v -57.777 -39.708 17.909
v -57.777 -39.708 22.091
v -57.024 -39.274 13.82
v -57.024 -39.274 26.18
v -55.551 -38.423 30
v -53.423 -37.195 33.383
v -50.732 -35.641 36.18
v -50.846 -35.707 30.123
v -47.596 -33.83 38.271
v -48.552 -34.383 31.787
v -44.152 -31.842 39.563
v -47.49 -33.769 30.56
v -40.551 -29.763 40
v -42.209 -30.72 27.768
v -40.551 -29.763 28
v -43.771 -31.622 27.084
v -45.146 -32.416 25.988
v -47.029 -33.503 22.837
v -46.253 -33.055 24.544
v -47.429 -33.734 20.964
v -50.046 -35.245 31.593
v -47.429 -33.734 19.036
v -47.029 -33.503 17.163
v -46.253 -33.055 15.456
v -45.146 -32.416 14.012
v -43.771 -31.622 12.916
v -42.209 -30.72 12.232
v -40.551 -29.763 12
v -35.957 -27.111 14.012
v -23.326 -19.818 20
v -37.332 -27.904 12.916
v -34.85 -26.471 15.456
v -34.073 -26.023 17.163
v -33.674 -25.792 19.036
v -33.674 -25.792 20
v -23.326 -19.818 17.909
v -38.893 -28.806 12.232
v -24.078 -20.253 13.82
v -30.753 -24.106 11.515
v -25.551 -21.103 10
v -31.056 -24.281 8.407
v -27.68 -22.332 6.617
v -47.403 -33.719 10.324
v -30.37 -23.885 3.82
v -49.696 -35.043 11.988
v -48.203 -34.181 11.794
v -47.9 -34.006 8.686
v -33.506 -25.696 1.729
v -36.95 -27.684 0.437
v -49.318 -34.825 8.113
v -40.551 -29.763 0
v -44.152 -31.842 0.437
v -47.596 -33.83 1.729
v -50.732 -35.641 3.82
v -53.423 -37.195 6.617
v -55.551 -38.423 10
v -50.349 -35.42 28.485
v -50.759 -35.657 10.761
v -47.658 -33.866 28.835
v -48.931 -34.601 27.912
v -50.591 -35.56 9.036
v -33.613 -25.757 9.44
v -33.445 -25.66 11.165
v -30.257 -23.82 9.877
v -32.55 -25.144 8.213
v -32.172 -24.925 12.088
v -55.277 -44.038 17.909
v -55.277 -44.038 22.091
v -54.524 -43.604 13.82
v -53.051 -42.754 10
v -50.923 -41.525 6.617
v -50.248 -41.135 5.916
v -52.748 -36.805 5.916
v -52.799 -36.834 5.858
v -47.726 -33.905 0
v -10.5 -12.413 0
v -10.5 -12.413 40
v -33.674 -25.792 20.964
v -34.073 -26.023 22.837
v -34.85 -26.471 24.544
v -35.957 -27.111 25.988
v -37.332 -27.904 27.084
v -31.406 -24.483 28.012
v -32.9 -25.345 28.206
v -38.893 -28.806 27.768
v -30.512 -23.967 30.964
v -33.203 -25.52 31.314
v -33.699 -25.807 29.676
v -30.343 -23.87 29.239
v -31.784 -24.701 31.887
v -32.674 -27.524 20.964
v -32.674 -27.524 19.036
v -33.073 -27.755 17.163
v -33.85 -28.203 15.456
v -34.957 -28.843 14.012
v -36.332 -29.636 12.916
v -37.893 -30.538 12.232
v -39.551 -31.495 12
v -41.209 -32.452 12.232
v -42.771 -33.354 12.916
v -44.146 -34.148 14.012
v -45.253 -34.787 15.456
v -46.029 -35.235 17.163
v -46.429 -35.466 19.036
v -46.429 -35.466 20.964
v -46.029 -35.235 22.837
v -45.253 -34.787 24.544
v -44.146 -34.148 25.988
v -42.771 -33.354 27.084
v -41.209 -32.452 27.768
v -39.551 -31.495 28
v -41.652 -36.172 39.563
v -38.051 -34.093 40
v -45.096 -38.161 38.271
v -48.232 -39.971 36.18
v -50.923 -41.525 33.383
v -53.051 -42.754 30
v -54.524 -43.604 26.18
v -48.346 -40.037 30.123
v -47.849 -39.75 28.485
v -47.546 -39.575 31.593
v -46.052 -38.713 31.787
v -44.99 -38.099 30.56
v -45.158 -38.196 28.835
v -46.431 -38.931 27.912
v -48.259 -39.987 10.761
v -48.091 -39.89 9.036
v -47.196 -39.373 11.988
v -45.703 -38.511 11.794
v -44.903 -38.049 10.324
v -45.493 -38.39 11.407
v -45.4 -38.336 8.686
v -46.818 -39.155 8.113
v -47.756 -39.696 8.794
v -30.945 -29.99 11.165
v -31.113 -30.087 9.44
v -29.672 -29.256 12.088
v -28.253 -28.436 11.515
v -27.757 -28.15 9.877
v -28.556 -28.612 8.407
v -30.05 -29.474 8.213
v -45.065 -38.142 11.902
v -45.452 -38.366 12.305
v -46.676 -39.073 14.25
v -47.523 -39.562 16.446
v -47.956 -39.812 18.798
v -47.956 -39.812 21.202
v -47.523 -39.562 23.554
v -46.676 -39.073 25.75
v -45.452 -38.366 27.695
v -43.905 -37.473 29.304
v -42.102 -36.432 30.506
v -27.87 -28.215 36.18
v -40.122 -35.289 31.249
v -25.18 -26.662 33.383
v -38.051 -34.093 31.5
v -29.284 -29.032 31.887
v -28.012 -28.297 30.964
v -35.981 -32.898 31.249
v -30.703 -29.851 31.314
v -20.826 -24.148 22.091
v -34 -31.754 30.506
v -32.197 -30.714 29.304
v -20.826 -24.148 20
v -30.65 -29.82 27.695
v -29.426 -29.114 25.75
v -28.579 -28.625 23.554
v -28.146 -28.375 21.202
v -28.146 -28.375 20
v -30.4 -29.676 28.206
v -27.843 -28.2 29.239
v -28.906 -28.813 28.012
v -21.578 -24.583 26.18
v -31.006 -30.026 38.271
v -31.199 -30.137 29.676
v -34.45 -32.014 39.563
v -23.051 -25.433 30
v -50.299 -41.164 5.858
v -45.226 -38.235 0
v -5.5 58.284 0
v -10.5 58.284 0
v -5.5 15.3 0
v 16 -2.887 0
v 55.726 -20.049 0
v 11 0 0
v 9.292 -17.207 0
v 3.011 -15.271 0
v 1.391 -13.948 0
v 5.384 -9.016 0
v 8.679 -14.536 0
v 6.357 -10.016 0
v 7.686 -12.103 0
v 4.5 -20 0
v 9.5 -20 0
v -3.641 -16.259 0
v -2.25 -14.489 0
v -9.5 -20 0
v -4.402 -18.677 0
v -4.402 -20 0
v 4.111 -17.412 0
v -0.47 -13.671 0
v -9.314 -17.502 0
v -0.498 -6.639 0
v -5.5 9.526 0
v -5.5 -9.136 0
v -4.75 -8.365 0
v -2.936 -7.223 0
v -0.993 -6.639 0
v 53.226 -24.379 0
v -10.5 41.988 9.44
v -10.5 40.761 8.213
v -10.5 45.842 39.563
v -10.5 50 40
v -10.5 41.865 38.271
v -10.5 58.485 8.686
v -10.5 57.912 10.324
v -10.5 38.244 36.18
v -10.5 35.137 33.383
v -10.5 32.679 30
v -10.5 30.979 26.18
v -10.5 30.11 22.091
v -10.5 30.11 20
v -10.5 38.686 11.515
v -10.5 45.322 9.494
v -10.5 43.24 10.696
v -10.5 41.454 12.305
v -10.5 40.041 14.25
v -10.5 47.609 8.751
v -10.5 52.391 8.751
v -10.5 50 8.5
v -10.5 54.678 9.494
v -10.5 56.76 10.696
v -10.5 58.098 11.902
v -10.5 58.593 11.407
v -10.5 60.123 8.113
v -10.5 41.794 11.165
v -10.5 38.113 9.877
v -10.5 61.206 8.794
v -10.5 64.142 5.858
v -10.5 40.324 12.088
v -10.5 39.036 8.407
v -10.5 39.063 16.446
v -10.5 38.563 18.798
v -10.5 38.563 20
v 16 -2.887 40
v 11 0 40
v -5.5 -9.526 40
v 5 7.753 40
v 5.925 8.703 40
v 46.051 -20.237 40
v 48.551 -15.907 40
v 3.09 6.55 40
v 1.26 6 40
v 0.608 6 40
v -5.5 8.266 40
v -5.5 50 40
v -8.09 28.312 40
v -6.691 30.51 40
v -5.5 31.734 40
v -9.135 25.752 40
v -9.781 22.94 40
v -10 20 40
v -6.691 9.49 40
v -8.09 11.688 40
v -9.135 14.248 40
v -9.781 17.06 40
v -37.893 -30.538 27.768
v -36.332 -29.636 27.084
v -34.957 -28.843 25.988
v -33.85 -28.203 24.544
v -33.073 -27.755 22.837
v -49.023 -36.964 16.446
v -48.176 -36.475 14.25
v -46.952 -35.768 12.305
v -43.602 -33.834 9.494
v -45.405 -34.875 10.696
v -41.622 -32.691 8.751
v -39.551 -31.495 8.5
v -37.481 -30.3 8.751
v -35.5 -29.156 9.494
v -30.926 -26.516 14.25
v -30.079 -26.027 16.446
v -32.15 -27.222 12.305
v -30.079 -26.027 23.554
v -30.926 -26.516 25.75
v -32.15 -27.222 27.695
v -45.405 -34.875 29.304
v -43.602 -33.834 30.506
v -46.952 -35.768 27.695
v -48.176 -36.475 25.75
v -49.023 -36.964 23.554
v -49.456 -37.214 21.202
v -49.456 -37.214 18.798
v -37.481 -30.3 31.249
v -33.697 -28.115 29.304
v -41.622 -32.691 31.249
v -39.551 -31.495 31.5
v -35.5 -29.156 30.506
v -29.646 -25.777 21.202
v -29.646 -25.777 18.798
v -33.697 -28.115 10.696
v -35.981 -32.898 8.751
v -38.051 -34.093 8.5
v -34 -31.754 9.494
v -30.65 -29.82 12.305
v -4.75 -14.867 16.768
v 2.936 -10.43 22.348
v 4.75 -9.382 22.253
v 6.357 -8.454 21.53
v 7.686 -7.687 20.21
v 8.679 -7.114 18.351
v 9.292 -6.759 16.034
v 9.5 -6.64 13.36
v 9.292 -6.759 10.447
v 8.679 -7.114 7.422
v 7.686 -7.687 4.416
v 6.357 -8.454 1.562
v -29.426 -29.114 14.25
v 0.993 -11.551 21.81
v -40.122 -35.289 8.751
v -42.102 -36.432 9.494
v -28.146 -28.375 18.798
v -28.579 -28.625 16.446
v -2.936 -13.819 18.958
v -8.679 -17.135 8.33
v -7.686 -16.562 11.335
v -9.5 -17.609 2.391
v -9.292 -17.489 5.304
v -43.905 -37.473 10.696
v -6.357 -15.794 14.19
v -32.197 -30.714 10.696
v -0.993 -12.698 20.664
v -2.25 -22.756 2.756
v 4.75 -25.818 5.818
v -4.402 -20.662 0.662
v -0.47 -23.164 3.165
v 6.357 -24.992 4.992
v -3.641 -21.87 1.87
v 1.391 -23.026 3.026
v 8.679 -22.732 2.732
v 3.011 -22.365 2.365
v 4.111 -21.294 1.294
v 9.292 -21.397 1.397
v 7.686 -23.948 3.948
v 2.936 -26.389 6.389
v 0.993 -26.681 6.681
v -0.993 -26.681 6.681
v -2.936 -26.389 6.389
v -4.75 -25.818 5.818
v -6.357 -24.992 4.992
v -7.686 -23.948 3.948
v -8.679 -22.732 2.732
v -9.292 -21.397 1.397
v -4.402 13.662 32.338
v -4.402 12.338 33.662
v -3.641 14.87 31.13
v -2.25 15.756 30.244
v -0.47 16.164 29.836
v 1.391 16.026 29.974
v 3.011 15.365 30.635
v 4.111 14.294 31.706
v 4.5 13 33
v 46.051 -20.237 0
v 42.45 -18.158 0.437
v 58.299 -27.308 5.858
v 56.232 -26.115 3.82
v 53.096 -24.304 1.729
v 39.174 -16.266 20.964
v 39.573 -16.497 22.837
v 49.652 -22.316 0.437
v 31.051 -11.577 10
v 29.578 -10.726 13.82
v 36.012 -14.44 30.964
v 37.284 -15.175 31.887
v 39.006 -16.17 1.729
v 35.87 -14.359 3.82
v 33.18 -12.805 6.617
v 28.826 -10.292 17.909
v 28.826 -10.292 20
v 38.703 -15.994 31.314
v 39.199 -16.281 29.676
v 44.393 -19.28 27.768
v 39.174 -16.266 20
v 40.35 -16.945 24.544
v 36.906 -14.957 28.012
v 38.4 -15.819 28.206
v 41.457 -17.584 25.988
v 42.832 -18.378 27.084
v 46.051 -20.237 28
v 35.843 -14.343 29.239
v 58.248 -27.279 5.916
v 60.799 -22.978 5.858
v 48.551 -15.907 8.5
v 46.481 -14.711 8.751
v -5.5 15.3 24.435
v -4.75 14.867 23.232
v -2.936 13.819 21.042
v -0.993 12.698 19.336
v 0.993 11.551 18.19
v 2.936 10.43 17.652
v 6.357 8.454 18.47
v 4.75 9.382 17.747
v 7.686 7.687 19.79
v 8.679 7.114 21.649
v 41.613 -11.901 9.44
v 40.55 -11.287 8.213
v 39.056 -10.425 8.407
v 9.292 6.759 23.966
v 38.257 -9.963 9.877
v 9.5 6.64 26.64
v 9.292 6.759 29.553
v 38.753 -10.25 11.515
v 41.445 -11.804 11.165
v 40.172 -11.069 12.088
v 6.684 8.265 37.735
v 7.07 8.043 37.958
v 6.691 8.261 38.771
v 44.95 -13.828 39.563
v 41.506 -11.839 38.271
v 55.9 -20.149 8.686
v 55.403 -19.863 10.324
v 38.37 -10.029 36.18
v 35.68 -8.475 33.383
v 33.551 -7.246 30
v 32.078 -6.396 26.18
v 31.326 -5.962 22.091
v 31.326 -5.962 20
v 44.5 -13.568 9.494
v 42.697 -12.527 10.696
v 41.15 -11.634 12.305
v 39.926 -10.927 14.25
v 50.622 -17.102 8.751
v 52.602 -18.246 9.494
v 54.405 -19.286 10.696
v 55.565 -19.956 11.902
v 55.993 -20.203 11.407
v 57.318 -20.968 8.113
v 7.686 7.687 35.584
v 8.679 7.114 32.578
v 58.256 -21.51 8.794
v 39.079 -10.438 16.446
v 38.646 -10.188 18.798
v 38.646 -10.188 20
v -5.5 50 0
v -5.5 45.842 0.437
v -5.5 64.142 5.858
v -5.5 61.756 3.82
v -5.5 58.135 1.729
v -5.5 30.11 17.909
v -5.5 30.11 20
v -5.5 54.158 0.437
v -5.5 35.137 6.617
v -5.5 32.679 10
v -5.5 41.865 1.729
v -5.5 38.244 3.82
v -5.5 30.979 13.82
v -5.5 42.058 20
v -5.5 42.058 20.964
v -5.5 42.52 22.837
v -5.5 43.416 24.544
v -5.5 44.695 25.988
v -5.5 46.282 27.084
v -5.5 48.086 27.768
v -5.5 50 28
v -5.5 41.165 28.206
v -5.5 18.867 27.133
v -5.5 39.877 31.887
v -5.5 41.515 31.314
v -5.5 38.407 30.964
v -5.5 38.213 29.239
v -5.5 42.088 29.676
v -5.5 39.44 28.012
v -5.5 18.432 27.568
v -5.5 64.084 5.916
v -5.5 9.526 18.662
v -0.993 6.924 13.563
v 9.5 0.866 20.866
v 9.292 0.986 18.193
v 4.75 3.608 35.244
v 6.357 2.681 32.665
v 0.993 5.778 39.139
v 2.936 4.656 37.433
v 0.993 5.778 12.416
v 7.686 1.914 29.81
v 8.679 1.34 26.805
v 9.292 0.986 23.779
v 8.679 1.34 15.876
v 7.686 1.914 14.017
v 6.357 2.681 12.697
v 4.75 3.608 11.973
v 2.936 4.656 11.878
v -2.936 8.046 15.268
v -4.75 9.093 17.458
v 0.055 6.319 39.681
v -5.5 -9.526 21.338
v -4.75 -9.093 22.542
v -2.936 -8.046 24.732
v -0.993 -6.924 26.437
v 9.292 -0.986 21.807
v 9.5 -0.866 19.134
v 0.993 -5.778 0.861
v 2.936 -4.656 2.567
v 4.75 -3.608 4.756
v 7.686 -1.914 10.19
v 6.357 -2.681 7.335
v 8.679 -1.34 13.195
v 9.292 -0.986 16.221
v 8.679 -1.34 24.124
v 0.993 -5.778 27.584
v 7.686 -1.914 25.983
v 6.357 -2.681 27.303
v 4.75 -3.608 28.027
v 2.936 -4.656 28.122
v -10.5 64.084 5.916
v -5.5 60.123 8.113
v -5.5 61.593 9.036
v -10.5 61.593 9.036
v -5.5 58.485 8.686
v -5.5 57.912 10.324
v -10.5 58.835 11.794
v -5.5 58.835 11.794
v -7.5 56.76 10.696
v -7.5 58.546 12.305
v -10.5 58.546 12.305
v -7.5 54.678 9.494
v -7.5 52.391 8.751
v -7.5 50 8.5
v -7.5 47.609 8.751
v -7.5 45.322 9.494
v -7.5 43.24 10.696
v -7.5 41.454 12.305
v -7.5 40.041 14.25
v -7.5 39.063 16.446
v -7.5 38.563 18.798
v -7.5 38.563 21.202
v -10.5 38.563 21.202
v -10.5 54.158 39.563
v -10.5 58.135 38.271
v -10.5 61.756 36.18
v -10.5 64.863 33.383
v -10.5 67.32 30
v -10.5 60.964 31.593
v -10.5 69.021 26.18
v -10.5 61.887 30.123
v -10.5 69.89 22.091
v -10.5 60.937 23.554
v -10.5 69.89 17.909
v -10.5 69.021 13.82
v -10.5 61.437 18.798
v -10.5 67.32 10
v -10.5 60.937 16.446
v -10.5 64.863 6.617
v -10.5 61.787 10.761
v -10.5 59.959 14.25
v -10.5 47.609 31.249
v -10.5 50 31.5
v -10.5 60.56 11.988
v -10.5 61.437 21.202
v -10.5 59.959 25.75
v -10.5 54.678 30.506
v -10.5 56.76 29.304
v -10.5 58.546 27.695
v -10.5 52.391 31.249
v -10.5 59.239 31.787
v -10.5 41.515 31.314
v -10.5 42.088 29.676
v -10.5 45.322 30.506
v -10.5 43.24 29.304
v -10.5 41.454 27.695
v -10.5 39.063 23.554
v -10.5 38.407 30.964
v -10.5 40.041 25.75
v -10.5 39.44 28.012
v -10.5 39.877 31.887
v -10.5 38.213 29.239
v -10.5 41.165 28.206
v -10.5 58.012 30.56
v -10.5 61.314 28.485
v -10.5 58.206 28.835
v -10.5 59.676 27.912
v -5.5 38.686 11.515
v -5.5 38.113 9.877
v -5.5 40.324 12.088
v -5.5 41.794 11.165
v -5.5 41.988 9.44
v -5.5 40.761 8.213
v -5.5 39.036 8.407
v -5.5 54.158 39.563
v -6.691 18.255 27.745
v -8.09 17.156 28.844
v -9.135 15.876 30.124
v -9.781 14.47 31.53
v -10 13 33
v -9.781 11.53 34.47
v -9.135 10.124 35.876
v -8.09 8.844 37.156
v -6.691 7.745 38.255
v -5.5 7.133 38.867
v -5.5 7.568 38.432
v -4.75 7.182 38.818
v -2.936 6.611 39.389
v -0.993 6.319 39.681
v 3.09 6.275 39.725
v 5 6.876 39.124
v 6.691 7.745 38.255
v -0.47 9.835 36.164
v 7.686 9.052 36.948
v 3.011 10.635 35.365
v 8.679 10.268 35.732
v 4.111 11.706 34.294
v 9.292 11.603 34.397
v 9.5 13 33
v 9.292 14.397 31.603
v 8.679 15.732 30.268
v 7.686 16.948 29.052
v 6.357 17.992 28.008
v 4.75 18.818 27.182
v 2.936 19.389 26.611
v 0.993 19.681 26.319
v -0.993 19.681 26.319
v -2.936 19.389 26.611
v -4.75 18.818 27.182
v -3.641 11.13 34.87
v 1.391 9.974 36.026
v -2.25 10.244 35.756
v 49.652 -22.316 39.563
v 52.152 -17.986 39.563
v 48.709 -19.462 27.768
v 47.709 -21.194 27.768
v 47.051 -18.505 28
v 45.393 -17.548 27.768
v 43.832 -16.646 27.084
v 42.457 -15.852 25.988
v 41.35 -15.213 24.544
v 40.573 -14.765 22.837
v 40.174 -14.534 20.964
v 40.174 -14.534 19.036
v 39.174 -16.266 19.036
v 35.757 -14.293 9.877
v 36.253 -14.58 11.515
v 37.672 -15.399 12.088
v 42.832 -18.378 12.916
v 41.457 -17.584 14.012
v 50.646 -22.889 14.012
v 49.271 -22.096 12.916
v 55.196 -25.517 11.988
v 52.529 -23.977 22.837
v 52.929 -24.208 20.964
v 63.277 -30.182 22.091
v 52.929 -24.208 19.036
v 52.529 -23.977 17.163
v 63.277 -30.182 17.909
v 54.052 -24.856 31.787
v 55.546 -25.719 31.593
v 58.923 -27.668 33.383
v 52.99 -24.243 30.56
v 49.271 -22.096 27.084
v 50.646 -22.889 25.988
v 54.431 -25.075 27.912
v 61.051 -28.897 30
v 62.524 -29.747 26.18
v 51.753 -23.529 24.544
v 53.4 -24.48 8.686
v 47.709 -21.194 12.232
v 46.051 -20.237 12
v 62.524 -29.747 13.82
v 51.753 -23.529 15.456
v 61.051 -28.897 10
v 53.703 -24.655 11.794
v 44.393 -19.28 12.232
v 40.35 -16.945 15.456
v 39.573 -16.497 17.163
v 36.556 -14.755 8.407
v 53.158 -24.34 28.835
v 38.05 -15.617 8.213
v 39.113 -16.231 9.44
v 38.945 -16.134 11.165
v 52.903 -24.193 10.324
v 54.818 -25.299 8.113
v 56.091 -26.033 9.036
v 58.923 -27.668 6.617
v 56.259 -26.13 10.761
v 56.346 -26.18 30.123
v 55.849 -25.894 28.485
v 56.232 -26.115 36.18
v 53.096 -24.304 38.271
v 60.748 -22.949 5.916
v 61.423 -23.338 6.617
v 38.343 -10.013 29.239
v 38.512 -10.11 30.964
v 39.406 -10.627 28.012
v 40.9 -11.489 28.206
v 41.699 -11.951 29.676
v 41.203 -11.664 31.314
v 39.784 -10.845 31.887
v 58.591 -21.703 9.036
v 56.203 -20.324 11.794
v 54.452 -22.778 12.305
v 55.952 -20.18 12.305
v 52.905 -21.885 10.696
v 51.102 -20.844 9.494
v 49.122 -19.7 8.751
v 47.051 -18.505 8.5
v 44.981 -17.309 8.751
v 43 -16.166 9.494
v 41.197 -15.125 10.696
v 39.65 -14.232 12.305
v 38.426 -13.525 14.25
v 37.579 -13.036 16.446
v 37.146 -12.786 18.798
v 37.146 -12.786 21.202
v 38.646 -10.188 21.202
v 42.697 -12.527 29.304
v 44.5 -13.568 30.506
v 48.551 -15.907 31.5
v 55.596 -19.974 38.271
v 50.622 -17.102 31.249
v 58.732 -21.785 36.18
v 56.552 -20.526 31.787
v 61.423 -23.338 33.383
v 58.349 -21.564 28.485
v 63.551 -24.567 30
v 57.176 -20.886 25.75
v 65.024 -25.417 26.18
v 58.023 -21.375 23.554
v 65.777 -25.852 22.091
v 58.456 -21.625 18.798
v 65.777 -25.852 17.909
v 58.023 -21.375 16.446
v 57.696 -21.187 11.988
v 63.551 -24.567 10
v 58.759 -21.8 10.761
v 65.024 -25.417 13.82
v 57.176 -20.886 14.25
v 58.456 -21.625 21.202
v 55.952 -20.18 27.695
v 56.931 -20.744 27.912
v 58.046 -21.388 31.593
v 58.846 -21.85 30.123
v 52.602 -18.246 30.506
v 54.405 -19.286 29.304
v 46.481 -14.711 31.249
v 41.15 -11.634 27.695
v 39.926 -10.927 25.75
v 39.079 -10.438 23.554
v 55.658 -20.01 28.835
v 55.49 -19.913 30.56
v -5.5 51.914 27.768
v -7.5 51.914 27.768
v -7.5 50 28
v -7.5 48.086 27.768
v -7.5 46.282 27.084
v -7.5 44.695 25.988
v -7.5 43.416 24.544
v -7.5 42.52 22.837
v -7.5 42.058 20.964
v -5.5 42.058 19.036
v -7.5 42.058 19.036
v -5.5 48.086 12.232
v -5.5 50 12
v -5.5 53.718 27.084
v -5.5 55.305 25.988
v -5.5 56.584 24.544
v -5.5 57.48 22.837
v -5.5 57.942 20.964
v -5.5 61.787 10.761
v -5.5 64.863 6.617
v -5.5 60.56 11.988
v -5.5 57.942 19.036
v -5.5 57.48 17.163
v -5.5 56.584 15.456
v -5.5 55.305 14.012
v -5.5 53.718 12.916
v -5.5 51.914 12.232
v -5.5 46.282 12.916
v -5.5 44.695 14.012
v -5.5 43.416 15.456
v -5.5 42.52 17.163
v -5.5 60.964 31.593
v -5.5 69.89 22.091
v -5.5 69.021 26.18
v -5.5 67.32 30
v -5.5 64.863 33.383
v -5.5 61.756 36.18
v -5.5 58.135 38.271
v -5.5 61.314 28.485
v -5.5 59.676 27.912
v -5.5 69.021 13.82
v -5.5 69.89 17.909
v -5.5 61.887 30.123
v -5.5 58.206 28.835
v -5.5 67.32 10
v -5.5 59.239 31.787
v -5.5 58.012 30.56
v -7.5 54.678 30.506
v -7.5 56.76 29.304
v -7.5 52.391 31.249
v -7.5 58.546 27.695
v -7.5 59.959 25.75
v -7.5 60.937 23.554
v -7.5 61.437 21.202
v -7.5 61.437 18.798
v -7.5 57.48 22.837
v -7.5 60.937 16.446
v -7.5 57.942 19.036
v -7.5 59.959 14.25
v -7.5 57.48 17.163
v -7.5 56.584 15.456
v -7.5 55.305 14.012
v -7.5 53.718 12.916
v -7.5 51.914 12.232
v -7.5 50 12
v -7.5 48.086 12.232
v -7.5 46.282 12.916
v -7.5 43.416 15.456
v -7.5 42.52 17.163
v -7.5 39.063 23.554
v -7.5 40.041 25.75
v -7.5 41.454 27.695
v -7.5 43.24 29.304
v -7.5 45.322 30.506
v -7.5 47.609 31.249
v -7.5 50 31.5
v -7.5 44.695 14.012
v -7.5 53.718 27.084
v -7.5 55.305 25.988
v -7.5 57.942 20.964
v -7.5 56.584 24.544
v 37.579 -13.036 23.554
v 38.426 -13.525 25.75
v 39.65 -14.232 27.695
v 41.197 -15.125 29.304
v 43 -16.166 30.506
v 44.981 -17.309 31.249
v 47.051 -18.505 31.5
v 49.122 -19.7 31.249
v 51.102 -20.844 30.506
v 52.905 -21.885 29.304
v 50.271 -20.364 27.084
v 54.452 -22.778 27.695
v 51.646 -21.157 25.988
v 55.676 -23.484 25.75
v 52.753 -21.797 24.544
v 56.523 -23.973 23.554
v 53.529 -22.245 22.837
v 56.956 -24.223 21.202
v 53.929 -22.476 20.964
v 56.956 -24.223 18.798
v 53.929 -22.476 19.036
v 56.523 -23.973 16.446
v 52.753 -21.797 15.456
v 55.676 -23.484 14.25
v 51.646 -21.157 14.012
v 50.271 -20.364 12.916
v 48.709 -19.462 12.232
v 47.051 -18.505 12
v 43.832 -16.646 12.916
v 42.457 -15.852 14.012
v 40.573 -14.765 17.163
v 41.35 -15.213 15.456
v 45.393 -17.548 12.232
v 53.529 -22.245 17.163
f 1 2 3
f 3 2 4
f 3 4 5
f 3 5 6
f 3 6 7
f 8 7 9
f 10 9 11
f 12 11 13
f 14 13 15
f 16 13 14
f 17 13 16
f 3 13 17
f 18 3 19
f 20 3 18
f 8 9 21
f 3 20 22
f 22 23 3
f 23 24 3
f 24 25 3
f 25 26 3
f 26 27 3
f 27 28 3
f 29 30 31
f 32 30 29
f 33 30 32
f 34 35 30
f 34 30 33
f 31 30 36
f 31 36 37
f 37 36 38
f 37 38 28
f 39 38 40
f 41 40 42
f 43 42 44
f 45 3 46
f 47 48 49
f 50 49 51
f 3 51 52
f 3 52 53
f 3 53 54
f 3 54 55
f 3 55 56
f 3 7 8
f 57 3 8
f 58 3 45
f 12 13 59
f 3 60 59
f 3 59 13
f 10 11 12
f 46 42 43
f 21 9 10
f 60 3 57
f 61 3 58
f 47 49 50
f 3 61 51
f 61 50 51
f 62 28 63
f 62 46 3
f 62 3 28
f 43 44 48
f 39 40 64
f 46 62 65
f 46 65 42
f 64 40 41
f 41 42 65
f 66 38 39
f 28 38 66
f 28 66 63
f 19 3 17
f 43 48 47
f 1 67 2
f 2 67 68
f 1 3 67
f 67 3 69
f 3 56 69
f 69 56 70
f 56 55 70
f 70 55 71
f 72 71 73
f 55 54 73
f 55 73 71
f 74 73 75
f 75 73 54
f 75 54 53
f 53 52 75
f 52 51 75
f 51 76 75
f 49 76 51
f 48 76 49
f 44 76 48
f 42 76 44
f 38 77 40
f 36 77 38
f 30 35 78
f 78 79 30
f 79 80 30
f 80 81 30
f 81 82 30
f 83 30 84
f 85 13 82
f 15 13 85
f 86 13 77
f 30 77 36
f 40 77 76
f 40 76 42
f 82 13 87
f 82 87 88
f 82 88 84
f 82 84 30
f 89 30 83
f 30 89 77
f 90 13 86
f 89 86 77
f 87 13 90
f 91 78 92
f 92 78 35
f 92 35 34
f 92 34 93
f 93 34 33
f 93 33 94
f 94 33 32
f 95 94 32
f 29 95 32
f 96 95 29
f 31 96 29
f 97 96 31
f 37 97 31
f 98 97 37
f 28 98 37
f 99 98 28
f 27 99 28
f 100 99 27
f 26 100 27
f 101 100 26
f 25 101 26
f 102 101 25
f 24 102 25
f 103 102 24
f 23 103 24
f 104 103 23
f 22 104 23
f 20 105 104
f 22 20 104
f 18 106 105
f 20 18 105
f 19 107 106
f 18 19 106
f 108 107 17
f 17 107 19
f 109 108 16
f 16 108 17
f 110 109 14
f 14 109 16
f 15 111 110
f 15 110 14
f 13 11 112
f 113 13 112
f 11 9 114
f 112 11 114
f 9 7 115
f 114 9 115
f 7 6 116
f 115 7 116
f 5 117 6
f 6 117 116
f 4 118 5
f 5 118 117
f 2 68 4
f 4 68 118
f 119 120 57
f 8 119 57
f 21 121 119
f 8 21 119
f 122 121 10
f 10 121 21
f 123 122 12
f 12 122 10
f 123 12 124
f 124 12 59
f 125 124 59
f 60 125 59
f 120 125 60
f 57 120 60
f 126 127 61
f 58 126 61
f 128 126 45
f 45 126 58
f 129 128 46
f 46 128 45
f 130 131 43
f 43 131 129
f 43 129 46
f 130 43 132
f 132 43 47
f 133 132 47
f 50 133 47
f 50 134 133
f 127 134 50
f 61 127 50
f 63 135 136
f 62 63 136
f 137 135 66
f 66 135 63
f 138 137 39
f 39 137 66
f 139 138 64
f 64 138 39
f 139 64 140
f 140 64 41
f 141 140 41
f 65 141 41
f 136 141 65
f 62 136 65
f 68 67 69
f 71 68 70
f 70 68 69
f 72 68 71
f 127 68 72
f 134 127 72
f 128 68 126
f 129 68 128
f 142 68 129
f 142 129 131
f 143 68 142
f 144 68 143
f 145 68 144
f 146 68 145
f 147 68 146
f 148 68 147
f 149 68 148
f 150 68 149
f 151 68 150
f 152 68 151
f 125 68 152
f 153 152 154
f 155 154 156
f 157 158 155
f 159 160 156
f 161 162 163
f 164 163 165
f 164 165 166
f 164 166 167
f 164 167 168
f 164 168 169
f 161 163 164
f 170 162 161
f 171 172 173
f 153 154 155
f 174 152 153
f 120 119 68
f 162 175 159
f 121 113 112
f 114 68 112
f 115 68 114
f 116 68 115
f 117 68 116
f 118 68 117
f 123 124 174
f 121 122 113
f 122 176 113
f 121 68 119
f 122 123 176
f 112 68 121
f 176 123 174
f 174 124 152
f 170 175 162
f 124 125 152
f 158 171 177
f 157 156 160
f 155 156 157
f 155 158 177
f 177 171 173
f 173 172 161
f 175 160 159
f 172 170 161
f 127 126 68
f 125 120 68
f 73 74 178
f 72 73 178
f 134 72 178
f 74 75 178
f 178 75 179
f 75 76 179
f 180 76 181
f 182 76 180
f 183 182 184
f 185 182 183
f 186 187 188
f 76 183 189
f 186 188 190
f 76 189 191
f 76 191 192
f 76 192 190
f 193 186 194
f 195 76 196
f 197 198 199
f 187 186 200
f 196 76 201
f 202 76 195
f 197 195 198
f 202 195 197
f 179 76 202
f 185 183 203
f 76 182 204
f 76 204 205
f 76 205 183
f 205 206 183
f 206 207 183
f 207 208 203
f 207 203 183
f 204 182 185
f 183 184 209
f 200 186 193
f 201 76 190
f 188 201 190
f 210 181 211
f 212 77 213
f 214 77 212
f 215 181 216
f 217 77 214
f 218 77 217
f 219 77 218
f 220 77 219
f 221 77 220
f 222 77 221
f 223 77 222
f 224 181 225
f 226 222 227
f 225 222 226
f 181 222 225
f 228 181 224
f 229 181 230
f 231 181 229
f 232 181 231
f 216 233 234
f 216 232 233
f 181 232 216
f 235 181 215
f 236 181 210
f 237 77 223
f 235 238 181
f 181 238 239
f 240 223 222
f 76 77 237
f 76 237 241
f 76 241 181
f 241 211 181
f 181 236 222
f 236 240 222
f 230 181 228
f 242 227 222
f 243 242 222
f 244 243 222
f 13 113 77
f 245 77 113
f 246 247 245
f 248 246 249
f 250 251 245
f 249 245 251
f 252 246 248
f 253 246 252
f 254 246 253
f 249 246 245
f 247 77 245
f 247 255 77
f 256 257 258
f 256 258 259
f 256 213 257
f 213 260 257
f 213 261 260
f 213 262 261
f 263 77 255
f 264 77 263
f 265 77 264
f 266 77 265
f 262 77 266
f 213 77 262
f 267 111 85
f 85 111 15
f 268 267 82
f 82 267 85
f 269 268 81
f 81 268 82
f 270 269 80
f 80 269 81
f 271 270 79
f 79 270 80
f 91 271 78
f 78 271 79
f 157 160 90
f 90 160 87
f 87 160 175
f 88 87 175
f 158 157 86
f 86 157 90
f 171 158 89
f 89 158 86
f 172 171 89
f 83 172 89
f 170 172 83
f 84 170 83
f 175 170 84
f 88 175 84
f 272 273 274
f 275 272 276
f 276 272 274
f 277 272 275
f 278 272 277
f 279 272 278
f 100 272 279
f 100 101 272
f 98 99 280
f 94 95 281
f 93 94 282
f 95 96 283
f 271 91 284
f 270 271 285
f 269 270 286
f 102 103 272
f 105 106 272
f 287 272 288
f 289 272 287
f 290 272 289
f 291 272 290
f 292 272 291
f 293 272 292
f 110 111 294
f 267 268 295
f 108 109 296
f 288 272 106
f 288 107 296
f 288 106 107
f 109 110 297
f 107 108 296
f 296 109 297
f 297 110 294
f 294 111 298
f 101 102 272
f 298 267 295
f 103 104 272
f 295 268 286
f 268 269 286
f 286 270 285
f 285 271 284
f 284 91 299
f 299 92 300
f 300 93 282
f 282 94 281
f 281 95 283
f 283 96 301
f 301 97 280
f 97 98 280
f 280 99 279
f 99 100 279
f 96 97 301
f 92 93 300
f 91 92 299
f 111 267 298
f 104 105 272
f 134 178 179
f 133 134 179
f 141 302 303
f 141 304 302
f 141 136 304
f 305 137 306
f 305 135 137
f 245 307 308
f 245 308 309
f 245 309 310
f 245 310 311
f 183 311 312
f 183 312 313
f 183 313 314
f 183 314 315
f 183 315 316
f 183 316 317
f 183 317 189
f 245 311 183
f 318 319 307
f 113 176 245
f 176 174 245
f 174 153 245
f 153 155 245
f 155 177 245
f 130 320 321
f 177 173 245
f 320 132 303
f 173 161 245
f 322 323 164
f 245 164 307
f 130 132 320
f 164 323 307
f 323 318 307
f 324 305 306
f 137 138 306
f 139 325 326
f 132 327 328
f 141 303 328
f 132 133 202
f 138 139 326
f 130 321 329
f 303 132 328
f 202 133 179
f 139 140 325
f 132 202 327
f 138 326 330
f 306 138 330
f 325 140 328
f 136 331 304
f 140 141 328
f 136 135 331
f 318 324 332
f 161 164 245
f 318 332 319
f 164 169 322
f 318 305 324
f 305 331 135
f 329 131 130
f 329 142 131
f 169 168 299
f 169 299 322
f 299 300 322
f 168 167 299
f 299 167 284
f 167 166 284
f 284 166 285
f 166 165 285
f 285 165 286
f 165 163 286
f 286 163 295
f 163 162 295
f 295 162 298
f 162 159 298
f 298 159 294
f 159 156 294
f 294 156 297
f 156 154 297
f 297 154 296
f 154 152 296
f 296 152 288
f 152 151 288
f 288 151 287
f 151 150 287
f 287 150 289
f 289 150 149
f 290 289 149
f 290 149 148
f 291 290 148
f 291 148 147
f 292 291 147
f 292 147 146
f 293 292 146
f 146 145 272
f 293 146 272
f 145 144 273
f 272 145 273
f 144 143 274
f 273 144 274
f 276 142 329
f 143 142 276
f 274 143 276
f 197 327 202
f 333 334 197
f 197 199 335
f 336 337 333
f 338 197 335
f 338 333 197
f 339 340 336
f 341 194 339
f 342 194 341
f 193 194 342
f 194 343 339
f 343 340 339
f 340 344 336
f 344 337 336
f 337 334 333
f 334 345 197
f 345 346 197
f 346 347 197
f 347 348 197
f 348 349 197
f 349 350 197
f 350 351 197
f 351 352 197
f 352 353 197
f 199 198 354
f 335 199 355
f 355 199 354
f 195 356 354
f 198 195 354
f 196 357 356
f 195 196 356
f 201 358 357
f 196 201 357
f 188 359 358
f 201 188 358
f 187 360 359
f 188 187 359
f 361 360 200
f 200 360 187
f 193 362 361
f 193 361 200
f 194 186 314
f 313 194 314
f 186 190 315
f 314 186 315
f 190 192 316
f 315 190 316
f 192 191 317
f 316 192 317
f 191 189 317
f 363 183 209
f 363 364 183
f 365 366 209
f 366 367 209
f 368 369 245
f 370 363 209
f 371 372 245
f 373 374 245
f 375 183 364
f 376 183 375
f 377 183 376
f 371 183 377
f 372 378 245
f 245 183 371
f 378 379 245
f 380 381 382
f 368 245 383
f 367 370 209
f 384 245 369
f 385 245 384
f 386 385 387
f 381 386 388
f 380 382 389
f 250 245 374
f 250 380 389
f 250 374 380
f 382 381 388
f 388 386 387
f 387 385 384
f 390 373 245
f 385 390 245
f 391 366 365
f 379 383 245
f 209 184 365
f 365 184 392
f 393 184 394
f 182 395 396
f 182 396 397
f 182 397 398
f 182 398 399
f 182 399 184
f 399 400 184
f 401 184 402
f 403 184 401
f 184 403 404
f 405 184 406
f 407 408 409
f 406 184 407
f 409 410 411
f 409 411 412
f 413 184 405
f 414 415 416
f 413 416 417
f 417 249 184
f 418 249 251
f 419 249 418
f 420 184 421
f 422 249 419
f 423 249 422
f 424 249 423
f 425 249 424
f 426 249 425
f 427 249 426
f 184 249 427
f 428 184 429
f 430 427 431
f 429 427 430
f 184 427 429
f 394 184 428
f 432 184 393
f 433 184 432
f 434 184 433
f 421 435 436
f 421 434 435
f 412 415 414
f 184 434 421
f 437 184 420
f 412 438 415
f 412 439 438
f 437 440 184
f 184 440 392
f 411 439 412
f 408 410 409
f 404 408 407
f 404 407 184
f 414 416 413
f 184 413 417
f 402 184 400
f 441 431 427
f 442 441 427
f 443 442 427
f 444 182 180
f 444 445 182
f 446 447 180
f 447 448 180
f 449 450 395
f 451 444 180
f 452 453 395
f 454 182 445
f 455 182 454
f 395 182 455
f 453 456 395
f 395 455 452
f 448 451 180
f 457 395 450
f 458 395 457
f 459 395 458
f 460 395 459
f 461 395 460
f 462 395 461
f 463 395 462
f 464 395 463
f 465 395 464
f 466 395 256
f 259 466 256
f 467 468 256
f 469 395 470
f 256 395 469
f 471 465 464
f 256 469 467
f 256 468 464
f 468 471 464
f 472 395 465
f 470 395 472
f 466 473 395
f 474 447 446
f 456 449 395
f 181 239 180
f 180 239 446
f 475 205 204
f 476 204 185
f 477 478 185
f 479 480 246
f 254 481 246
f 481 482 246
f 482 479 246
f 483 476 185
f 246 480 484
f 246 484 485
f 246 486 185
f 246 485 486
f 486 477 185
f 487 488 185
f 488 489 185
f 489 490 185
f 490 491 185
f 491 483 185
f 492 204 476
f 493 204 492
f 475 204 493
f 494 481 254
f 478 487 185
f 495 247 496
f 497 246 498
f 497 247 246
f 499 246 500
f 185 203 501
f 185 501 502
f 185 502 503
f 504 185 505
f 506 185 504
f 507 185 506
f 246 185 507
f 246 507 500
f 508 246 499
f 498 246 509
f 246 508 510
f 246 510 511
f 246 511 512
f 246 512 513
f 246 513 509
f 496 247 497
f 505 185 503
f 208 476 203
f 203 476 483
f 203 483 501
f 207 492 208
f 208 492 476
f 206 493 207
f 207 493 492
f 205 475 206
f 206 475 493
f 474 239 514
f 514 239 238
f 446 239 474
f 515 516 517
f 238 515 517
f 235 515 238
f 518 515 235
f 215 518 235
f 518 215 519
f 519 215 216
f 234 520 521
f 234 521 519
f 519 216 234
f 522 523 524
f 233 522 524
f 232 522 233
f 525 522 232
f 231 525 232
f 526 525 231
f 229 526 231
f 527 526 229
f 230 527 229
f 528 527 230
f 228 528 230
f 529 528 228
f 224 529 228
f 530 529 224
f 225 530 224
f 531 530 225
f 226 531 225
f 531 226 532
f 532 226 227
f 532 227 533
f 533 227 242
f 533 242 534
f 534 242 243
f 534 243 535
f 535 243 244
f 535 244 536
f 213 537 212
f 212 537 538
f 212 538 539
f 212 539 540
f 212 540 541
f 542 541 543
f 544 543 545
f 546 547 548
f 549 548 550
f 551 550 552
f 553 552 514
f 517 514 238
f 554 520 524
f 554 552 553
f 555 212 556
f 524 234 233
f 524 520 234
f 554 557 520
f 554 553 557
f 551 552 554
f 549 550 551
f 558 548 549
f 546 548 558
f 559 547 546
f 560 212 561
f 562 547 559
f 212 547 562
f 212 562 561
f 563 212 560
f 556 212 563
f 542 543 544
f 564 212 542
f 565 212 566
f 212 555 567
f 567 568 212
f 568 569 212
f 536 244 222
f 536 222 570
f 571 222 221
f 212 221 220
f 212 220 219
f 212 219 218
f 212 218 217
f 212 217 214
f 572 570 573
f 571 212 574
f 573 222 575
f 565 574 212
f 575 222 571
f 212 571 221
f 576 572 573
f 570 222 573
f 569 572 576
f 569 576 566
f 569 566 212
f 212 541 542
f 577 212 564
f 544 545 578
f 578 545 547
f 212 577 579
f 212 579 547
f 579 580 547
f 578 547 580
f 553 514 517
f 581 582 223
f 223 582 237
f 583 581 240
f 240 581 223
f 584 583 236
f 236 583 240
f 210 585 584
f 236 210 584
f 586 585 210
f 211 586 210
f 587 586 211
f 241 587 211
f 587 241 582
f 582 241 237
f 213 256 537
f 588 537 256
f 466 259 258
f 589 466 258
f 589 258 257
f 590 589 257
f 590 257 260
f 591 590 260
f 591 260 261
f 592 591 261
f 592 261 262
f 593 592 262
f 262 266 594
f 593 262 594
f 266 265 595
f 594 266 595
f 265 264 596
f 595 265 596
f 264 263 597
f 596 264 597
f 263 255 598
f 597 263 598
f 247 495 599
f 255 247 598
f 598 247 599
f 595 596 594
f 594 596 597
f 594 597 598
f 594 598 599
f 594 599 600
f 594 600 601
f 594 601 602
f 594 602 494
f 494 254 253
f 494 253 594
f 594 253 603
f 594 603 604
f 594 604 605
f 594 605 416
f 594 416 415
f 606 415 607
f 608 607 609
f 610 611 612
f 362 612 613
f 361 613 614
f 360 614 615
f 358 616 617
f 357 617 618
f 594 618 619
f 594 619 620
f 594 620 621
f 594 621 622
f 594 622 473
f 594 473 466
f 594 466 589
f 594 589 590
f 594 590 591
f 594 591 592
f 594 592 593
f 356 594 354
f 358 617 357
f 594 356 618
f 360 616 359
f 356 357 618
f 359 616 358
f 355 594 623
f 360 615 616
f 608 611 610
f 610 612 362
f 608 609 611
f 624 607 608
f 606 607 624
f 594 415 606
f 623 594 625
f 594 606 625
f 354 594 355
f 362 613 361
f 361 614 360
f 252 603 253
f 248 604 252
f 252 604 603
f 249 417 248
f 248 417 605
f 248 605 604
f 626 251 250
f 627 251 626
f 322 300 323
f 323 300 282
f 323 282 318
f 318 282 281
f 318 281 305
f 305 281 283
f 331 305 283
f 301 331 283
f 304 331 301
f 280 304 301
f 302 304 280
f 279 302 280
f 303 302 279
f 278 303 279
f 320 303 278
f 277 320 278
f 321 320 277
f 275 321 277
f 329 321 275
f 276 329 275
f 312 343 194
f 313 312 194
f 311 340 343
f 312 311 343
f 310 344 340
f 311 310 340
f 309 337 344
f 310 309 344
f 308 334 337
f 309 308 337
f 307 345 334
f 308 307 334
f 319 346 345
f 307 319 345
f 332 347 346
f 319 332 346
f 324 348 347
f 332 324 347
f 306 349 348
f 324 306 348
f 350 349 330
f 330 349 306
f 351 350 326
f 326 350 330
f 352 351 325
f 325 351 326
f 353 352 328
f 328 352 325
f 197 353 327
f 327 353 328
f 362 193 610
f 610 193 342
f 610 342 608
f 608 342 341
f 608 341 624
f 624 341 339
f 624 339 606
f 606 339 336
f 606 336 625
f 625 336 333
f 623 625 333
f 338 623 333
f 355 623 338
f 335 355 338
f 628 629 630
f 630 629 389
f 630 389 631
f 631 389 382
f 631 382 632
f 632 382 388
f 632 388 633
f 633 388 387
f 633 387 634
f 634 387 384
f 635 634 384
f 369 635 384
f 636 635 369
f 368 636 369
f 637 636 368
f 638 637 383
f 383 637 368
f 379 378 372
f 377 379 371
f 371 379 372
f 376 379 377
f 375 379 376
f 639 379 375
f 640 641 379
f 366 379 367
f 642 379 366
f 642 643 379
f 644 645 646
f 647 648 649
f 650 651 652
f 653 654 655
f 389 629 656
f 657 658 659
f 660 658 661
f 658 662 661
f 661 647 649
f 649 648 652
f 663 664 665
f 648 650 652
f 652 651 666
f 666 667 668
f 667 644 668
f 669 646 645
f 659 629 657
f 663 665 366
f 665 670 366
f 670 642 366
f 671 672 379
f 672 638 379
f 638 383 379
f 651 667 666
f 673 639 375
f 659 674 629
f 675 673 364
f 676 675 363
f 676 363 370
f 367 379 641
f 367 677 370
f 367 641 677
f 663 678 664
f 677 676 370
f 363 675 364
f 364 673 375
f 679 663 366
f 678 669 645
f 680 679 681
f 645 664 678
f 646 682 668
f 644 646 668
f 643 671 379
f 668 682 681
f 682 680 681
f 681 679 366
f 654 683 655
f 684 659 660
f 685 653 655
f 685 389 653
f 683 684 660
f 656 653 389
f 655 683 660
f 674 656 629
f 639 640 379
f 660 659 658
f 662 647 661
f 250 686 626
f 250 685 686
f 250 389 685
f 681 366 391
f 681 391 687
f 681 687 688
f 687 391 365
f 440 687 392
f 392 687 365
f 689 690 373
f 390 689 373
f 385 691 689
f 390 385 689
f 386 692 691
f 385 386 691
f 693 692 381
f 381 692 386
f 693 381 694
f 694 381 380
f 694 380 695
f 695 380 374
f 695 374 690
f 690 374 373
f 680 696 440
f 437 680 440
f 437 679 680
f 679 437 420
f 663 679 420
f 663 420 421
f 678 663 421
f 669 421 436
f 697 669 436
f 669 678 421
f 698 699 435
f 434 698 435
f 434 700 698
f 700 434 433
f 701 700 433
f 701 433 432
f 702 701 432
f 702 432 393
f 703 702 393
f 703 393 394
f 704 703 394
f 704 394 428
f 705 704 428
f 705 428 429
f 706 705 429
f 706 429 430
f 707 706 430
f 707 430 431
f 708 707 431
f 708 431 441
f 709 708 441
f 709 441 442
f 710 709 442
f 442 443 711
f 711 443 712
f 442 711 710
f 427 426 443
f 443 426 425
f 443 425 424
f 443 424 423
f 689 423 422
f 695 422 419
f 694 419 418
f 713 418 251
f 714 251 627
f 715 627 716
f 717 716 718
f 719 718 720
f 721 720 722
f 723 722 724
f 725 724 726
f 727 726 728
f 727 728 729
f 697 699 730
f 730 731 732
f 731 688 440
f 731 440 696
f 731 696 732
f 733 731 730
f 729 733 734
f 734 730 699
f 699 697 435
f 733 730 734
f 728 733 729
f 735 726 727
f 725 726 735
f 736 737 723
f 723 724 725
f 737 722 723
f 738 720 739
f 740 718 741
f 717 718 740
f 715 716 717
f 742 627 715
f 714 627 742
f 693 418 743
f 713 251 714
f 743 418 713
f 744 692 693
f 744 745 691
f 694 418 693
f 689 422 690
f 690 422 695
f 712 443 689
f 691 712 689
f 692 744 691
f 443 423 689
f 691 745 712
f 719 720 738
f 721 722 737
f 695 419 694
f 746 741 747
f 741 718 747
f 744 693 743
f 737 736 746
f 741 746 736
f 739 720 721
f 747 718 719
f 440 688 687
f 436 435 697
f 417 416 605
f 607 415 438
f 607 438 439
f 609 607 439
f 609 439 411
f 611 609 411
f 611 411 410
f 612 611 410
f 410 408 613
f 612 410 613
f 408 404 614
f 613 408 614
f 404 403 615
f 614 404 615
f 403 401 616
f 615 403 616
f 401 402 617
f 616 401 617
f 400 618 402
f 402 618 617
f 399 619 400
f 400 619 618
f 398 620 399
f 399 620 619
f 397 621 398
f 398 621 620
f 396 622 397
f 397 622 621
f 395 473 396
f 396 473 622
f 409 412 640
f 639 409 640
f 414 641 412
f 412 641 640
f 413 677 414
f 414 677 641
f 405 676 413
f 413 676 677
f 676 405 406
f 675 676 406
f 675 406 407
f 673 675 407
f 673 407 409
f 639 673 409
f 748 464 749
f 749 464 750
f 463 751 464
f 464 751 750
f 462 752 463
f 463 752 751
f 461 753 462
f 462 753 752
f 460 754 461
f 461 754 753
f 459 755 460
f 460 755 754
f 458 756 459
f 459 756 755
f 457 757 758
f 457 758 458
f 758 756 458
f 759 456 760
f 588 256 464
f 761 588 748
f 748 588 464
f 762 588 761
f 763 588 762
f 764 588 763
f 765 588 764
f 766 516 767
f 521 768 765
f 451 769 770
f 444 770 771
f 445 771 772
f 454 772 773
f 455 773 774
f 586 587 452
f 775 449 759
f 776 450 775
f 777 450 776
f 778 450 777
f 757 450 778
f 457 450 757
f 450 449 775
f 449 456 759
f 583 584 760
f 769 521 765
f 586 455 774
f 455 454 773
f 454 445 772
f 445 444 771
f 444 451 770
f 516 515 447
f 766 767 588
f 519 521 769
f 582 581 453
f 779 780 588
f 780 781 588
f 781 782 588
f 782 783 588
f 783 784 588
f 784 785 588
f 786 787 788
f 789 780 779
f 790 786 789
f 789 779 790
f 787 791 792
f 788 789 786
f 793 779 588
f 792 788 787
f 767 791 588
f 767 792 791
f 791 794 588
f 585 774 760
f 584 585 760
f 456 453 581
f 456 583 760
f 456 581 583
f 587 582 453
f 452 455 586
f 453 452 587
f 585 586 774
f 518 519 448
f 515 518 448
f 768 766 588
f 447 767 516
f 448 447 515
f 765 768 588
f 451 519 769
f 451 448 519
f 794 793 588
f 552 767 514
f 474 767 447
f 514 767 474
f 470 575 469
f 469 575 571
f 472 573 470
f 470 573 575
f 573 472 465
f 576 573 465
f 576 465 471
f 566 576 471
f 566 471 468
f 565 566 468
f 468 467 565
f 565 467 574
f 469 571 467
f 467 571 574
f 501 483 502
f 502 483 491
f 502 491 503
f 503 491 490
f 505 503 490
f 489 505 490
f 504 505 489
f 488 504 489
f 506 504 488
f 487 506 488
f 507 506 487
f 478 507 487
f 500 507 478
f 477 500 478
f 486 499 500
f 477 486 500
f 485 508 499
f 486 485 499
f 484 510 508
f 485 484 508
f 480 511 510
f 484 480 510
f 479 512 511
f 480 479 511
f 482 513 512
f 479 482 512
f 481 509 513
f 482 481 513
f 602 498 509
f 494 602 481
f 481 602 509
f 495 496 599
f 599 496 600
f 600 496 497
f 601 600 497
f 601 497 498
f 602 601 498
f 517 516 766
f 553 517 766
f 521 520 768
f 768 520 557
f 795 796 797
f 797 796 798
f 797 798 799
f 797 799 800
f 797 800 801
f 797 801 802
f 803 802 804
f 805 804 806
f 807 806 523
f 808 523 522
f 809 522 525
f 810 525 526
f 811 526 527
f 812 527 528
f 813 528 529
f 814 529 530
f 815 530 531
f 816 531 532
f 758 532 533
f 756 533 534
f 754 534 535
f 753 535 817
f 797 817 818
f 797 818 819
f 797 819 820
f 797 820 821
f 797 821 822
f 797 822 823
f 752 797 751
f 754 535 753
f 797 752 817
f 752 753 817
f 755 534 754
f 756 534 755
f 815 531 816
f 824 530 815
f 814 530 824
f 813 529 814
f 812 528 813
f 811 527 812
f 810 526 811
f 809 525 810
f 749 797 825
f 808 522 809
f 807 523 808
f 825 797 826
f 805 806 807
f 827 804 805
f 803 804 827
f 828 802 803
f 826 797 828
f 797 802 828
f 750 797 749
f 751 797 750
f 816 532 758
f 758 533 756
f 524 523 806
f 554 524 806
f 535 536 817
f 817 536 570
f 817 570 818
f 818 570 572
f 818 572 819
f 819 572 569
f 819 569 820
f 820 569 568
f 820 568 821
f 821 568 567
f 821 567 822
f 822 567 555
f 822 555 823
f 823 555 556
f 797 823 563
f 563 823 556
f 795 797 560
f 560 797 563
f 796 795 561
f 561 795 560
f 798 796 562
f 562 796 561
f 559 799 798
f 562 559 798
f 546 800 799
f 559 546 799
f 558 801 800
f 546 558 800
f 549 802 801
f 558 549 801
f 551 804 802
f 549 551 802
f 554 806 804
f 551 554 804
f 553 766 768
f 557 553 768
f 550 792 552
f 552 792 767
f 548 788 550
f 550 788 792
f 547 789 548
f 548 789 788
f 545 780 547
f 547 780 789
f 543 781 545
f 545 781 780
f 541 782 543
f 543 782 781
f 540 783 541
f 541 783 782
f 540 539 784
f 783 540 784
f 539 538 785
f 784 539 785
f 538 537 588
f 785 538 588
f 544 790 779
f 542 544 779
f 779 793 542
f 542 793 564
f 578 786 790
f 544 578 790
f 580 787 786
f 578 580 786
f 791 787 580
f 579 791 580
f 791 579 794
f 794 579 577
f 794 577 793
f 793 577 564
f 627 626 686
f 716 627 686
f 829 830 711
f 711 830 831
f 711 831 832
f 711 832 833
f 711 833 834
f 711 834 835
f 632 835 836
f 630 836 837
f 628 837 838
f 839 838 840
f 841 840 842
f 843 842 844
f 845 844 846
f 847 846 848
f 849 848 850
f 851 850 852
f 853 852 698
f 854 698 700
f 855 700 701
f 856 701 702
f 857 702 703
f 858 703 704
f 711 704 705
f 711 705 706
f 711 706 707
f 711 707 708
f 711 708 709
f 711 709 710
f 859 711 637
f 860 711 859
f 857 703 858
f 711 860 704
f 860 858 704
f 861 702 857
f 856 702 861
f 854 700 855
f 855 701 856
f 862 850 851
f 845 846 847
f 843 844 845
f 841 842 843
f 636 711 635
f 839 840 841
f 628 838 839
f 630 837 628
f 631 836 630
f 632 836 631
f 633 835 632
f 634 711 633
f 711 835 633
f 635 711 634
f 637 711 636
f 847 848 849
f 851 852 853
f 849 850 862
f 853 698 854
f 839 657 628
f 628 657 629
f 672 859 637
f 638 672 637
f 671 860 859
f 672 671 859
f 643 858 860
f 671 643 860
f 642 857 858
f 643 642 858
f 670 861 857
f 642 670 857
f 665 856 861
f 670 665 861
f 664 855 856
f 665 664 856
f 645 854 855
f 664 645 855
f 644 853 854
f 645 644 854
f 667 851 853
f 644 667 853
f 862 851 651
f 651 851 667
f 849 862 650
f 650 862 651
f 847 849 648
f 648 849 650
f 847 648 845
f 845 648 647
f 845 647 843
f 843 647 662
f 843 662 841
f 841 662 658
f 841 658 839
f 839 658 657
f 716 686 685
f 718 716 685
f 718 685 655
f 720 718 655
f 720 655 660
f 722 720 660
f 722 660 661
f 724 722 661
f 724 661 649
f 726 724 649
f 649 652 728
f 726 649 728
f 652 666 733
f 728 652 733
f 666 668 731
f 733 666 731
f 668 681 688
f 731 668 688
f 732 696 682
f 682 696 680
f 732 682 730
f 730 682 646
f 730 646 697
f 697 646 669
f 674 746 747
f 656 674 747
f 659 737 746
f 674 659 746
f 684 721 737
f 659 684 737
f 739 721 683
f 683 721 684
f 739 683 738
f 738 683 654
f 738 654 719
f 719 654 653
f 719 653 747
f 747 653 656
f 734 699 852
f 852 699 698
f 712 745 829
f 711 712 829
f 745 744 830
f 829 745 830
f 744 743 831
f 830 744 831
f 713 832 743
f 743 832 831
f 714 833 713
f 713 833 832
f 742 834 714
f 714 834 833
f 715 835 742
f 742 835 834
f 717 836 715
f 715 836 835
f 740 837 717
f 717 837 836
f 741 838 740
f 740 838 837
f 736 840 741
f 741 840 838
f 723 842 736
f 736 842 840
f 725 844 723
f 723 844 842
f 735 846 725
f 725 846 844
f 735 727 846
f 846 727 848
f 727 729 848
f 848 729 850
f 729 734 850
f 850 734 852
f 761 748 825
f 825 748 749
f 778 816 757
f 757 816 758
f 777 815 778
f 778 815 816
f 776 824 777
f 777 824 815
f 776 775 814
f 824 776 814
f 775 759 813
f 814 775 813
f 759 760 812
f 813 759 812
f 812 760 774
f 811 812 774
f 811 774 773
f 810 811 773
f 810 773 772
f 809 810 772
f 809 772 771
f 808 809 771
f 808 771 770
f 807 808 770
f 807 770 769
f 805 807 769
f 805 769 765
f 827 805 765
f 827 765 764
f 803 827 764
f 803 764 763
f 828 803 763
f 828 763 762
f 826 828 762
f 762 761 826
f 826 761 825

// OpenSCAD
// file: miscHardwareDimensions.scad
// the distance from the base of a Traxis 5347 rod end to the center of the
// ball joint.
traxxas5347BallHeight = 17;
traxxas5347HornWidth = 6.75;

stepperShaftDiameter=8;
stepperShaftFlatDepth=1;
stepperShaftFlatLength=15;
stepperShaftFlatOffset=5;
stepperShaftKeepoutDiameter=22;
stepperShaftKeepoutLength=3;
stepperGearboxDiameter=36;
stepperGearboxLength=35;
stepperInnerMountingHoleRingDiameter=28;
stepperMountingScrewDiameter=3;
stepperBodyWidth=42.3;
stepperBodyLength=48;

// guesses on dimensions
mountingScrewDepth = 8;
gearboxFlangeDepth = 5;
gearboxFlangeWidth = stepperBodyWidth - 2;
silverBorderLength = 8;
// file: dimensions.scad
//
// basic measurements of the robot
//

// radius of a circle tangent to the axes of the upper stepper motors
shoulderRadius = 50;

// radius of a circle tangent to the axes of rotation around the effector
wristRadius = 50;

// axis to axis length of the upper armature
proximalArmLength = 250;

// axis to axis length of the lower armature
distalArmLength = 288;

// width of the gap between the rod ends on the distal arm
distalArmGap = 30;

// height of center of the plane containing the stepper motors above the
// ground.
standHeight = 400;

// diameter of the printing bed
bedRadius = 150;

// fudge factor for difference operator
overcut = 1;

// clearance around holes
clearance=1;
// main file
include <dimensions.scad>
include <miscHardwareDimensions.scad>

offset=stepperShaftKeepoutLength + stepperShaftFlatLength / 2;
height=40;
wallThickness=5;
centralTriangleWallLength = offset * 4/sqrt(3) + wallThickness/2;
postDiameter=8;

module bodyFrame() {
    difference() {
        union() {
            // mounting cylinder
            rotate([-45, 0, 0])
                translate([0, 0, -height * sqrt(2)/2])
                cylinder(r=postDiameter/2 + clearance/2 + wallThickness,
                    h=sqrt(2)*(height - postDiameter/2
                        - clearance/2 - wallThickness/2));

            // the three radial walls
            for (i = [0:2]) {
                rotate([0, 0, 120*i]) {
                    // the wall to the center
                    translate([-offset, -centralTriangleWallLength/2,
                            -height/2])
                        cube([wallThickness,
                            shoulderRadius + centralTriangleWallLength/2,
                            height]);

                    // radius on outside of wall
                    translate([-offset, shoulderRadius, 0])
                        rotate([0, 90, 0])
                        cylinder(r=height/2, h=wallThickness);

                    // buttress for the overhang to make sure it is greater
                    // than or equal to 45 degrees.
                    translate([-offset, shoulderRadius, 0])
                        rotate([-135,0,0])
                        cube([wallThickness, height/2, height/2]);
                }
            }
        }

        rotate([-45, 0, 0]) {
            // the hole in the mounting cylinder
            translate([0, 0, -overcut - height])
                cylinder(r=postDiameter/2 + clearance/2,
                    h=2*height + 2*overcut);

            // clear out the lower shoulder on the mounting cylinder
            translate([0, 0, -overcut - height])
                cylinder(r=postDiameter/2 + wallThickness + clearance,
                    h=(1 - sqrt(2)/2) * height + overcut);

            // clear out the upper shoulder on the mounting cylinder
            translate([0, 0, sqrt(2)*(height/2 - postDiameter/2 -
                    clearance/2 - wallThickness/2)])
                cylinder(r=postDiameter/2 + wallThickness + clearance,
                    h=height + overcut);
        }

        // cut off the bottom of the mounting post to leave a smooth surface
        translate([0, 0, -height * 3/2])
            cylinder(r=shoulderRadius + height, h=height);

        // for each of the three radial walls
        for (i = [0:2]) {
            rotate([0, 0, 120*i])
                translate([-offset - overcut, shoulderRadius, 0])
                rotate([0, 90, 0]) {
                    // cut out the keep-out for the stepper
                    cylinder(r=stepperShaftKeepoutDiameter/2 + clearance/2,
                        h=stepperShaftKeepoutLength + overcut);

                    // cut out for the stepper shaft (and retaining ring)
                    cylinder(r=stepperShaftDiameter,
                        h=wallThickness + 2*overcut);

                    // cut out the stepper motor mounting holes
                    for (j = [0:3]) {
                        rotate([0, 0, j*90 + 45])
                            translate([0,
                                stepperInnerMountingHoleRingDiameter/2,
                                0])
                            cylinder(r=stepperMountingScrewDiameter/2 +
                                clearance/2,
                                h=wallThickness + 2*overcut);
                    }
                }
        }
    }
}

translate([0, 0, height/2])
bodyFrame();
